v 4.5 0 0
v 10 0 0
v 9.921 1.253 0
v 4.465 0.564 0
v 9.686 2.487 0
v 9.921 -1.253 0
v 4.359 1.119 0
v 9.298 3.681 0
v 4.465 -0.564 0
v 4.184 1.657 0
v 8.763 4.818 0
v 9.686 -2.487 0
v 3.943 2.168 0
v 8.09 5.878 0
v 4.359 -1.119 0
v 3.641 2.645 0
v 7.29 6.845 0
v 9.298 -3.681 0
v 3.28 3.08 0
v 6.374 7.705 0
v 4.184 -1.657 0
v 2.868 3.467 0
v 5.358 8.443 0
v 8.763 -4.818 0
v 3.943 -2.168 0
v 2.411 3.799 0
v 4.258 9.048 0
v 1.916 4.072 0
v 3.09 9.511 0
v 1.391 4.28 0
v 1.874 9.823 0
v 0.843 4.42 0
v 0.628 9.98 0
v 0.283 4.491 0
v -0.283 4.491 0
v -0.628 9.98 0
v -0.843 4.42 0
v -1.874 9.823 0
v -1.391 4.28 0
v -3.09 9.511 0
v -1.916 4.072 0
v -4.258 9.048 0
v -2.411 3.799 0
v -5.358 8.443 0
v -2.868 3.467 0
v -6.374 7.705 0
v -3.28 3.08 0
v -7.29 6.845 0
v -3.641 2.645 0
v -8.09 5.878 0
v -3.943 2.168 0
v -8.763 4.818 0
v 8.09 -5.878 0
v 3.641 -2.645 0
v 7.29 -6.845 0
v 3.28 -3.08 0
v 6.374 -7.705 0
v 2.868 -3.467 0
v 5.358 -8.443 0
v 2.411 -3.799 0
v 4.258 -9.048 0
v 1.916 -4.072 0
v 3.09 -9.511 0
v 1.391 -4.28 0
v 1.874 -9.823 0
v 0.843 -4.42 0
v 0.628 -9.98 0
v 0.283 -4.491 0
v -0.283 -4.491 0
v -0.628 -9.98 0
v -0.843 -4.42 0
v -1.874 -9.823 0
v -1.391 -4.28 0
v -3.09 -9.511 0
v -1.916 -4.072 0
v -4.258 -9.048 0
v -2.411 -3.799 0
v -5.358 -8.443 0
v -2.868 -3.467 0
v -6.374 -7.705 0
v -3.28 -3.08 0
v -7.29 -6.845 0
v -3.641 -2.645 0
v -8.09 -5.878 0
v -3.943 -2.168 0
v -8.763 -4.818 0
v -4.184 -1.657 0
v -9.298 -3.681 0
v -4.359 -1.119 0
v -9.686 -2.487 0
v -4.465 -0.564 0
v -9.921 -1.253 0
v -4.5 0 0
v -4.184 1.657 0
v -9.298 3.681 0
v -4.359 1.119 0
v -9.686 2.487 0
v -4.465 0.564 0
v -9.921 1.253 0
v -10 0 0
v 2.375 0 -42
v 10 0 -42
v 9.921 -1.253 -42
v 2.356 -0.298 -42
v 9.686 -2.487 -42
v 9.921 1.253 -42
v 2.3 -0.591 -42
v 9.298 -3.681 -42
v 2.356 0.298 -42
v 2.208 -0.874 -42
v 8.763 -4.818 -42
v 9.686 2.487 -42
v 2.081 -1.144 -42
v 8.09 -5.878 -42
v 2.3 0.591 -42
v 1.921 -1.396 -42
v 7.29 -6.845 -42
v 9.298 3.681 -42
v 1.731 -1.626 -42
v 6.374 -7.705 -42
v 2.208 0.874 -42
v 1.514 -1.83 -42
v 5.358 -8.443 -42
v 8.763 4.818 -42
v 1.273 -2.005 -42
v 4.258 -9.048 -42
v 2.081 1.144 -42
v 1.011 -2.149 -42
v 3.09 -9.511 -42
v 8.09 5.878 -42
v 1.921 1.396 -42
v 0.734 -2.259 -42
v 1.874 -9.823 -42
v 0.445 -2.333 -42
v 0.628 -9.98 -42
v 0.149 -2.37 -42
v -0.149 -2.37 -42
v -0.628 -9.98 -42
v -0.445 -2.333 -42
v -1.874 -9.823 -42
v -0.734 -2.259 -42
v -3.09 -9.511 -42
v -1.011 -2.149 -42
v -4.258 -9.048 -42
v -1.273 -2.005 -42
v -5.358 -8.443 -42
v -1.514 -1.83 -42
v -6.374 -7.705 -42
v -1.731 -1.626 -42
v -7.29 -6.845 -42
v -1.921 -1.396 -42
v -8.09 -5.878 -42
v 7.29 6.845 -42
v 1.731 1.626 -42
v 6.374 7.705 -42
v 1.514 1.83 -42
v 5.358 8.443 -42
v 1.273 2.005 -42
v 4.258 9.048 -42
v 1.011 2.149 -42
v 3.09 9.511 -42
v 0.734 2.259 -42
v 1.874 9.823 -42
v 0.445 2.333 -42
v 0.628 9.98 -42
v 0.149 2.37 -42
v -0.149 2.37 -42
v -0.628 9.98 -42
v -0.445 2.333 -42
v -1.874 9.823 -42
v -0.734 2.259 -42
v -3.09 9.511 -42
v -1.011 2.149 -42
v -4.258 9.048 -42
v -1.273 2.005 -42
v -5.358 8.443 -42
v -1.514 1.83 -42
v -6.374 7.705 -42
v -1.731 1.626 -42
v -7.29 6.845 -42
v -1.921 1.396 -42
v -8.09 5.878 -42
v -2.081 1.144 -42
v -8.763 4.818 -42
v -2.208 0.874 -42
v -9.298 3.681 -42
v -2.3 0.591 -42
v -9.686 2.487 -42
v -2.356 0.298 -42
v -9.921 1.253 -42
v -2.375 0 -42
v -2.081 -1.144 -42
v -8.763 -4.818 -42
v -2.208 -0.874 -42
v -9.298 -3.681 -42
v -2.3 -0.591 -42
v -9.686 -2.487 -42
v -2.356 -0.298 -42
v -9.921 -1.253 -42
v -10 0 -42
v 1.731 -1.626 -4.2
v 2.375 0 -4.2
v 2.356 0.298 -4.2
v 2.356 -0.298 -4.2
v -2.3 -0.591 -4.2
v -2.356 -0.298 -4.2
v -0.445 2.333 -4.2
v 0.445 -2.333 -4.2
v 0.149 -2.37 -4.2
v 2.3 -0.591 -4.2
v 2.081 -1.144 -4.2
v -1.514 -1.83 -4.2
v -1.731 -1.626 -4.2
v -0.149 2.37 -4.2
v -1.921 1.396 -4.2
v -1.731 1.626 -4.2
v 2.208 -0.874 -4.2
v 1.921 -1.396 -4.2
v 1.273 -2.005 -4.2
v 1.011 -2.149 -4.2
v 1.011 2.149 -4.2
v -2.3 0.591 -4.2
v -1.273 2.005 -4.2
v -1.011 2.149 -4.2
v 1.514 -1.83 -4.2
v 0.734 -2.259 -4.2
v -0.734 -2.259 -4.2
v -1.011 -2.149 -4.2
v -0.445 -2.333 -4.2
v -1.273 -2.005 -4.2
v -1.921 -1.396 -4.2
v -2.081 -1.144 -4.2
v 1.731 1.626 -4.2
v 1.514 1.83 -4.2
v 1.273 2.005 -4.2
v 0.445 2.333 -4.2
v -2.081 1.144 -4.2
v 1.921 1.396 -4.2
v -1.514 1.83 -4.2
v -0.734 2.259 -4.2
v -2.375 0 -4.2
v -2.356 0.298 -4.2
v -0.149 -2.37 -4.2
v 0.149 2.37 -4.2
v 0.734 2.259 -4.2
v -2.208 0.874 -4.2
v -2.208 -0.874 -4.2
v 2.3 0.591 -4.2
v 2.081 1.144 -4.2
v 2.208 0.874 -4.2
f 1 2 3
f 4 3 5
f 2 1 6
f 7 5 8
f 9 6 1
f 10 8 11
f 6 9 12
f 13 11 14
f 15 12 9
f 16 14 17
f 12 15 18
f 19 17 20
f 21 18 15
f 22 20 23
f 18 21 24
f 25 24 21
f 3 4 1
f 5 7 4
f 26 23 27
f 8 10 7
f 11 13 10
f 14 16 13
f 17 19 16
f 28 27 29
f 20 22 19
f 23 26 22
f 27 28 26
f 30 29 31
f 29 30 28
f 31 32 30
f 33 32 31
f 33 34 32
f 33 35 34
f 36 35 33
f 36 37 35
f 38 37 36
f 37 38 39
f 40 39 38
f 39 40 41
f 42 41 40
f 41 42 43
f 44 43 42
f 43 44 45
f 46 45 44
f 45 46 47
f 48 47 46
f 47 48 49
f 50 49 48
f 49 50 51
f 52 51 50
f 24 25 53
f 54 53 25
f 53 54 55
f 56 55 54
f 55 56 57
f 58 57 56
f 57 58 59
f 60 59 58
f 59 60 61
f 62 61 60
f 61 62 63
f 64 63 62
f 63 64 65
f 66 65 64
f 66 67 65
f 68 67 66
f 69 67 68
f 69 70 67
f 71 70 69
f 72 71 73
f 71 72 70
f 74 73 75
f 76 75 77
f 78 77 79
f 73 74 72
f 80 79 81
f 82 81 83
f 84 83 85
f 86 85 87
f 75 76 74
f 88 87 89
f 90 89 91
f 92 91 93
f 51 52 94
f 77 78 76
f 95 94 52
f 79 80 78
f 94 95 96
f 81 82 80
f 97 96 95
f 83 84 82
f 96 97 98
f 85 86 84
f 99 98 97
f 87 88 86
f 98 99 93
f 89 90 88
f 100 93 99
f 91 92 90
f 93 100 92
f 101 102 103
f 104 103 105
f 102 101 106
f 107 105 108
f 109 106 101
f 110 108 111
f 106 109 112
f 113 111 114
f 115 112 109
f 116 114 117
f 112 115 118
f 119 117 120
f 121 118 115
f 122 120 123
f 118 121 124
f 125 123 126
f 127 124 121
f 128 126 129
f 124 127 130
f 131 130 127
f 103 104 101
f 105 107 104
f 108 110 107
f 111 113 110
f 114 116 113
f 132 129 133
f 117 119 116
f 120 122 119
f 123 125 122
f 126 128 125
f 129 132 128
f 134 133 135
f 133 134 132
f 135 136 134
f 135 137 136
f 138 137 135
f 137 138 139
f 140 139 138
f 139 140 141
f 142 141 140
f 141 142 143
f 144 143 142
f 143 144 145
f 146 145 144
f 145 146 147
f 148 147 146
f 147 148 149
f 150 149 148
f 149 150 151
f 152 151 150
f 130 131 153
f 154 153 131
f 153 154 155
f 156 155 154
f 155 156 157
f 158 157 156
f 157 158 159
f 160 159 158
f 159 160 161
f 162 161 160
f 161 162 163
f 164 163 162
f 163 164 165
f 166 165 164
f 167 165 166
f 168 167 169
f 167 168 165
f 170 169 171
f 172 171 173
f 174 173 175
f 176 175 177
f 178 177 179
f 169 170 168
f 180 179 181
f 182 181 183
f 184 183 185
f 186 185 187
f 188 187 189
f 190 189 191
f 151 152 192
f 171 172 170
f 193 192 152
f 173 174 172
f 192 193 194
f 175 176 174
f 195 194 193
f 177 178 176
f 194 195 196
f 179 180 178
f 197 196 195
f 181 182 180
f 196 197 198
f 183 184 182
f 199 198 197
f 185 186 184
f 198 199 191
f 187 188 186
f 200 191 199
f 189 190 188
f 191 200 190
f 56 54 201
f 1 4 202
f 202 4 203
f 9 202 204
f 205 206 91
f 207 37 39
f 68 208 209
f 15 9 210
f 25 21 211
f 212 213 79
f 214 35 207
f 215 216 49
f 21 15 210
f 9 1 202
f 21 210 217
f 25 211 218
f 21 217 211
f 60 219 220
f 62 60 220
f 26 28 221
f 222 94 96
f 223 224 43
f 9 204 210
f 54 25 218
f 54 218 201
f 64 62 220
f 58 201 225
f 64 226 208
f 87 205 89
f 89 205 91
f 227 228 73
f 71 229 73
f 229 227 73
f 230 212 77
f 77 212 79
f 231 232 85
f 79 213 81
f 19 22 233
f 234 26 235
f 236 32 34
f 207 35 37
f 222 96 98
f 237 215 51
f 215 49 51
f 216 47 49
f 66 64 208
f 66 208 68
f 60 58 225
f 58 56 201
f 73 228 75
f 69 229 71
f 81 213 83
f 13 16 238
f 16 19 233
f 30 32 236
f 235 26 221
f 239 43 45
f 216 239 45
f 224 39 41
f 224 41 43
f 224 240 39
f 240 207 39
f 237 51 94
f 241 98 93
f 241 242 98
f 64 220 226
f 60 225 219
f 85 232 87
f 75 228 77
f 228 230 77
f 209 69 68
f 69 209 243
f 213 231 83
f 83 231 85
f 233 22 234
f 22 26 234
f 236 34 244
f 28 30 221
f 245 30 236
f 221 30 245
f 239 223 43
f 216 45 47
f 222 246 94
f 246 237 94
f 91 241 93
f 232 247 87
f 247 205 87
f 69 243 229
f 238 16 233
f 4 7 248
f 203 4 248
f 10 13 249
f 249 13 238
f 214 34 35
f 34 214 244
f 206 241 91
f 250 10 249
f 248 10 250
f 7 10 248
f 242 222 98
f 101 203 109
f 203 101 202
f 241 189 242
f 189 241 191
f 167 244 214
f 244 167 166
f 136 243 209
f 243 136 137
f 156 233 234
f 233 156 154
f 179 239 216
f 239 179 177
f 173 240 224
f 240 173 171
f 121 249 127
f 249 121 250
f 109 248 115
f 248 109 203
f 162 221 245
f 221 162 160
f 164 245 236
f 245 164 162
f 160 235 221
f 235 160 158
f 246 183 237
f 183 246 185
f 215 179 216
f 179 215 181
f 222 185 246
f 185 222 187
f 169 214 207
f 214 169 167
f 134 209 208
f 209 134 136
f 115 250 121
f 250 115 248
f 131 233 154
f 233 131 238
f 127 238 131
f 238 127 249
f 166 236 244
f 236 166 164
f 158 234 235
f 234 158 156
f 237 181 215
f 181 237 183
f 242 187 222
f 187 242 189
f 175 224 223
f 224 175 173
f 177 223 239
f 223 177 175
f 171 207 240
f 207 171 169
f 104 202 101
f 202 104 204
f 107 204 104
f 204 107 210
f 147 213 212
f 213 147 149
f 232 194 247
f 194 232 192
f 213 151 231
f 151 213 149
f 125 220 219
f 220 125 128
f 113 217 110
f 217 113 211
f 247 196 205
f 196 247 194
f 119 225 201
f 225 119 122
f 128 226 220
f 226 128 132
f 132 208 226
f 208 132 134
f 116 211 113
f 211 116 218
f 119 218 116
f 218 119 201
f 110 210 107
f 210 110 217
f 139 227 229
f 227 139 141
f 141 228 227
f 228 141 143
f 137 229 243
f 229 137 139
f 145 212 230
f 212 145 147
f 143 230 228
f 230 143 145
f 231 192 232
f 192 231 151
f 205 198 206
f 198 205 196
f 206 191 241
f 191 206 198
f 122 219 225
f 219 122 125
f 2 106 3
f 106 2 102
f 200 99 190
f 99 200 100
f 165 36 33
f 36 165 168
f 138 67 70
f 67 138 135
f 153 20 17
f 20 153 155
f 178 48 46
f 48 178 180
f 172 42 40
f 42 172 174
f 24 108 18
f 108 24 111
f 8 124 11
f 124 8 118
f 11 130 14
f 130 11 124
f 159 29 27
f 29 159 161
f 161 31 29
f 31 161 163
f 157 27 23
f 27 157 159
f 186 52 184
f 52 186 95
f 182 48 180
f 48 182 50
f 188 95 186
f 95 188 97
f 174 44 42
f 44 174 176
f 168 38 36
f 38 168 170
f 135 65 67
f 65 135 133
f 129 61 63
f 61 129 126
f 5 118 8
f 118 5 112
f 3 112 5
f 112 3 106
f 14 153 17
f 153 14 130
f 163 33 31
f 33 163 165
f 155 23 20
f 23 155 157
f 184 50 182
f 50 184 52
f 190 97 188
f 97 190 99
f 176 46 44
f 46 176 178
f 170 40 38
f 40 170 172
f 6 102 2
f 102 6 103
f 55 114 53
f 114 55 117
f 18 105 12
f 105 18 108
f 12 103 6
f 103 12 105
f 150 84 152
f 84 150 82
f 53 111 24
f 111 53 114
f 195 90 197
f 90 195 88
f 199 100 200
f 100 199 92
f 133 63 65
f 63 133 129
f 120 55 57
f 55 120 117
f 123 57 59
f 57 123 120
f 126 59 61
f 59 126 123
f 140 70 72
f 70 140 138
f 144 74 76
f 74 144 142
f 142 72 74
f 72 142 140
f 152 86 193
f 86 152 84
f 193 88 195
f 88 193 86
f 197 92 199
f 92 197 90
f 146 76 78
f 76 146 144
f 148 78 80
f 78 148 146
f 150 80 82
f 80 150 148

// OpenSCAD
$fn = 50;


difference() {
	union() {
		translate(v = [0, 0, -42.0000000000]) {
			cylinder(h = 42, r = 10.0000000000);
		}
	}
	union() {
		translate(v = [0, 0, 0]) {
			rotate(a = [0, 0, 0]) {
				difference() {
					union() {
						#translate(v = [0, 0, -42.0000000000]) {
							cylinder(h = 42, r = 2.2500000000);
						}
						#translate(v = [0, 0, -4.2000000000]) {
							cylinder(h = 4.2000000000, r1 = 2.3750000000, r2 = 4.5000000000);
						}
						#translate(v = [0, 0, -42.0000000000]) {
							cylinder(h = 42, r = 2.3750000000);
						}
						#translate(v = [0, 0, -42.0000000000]) {
							cylinder(h = 42, r = 2.2500000000);
						}
					}
					union();
				}
			}
		}
	}
}
